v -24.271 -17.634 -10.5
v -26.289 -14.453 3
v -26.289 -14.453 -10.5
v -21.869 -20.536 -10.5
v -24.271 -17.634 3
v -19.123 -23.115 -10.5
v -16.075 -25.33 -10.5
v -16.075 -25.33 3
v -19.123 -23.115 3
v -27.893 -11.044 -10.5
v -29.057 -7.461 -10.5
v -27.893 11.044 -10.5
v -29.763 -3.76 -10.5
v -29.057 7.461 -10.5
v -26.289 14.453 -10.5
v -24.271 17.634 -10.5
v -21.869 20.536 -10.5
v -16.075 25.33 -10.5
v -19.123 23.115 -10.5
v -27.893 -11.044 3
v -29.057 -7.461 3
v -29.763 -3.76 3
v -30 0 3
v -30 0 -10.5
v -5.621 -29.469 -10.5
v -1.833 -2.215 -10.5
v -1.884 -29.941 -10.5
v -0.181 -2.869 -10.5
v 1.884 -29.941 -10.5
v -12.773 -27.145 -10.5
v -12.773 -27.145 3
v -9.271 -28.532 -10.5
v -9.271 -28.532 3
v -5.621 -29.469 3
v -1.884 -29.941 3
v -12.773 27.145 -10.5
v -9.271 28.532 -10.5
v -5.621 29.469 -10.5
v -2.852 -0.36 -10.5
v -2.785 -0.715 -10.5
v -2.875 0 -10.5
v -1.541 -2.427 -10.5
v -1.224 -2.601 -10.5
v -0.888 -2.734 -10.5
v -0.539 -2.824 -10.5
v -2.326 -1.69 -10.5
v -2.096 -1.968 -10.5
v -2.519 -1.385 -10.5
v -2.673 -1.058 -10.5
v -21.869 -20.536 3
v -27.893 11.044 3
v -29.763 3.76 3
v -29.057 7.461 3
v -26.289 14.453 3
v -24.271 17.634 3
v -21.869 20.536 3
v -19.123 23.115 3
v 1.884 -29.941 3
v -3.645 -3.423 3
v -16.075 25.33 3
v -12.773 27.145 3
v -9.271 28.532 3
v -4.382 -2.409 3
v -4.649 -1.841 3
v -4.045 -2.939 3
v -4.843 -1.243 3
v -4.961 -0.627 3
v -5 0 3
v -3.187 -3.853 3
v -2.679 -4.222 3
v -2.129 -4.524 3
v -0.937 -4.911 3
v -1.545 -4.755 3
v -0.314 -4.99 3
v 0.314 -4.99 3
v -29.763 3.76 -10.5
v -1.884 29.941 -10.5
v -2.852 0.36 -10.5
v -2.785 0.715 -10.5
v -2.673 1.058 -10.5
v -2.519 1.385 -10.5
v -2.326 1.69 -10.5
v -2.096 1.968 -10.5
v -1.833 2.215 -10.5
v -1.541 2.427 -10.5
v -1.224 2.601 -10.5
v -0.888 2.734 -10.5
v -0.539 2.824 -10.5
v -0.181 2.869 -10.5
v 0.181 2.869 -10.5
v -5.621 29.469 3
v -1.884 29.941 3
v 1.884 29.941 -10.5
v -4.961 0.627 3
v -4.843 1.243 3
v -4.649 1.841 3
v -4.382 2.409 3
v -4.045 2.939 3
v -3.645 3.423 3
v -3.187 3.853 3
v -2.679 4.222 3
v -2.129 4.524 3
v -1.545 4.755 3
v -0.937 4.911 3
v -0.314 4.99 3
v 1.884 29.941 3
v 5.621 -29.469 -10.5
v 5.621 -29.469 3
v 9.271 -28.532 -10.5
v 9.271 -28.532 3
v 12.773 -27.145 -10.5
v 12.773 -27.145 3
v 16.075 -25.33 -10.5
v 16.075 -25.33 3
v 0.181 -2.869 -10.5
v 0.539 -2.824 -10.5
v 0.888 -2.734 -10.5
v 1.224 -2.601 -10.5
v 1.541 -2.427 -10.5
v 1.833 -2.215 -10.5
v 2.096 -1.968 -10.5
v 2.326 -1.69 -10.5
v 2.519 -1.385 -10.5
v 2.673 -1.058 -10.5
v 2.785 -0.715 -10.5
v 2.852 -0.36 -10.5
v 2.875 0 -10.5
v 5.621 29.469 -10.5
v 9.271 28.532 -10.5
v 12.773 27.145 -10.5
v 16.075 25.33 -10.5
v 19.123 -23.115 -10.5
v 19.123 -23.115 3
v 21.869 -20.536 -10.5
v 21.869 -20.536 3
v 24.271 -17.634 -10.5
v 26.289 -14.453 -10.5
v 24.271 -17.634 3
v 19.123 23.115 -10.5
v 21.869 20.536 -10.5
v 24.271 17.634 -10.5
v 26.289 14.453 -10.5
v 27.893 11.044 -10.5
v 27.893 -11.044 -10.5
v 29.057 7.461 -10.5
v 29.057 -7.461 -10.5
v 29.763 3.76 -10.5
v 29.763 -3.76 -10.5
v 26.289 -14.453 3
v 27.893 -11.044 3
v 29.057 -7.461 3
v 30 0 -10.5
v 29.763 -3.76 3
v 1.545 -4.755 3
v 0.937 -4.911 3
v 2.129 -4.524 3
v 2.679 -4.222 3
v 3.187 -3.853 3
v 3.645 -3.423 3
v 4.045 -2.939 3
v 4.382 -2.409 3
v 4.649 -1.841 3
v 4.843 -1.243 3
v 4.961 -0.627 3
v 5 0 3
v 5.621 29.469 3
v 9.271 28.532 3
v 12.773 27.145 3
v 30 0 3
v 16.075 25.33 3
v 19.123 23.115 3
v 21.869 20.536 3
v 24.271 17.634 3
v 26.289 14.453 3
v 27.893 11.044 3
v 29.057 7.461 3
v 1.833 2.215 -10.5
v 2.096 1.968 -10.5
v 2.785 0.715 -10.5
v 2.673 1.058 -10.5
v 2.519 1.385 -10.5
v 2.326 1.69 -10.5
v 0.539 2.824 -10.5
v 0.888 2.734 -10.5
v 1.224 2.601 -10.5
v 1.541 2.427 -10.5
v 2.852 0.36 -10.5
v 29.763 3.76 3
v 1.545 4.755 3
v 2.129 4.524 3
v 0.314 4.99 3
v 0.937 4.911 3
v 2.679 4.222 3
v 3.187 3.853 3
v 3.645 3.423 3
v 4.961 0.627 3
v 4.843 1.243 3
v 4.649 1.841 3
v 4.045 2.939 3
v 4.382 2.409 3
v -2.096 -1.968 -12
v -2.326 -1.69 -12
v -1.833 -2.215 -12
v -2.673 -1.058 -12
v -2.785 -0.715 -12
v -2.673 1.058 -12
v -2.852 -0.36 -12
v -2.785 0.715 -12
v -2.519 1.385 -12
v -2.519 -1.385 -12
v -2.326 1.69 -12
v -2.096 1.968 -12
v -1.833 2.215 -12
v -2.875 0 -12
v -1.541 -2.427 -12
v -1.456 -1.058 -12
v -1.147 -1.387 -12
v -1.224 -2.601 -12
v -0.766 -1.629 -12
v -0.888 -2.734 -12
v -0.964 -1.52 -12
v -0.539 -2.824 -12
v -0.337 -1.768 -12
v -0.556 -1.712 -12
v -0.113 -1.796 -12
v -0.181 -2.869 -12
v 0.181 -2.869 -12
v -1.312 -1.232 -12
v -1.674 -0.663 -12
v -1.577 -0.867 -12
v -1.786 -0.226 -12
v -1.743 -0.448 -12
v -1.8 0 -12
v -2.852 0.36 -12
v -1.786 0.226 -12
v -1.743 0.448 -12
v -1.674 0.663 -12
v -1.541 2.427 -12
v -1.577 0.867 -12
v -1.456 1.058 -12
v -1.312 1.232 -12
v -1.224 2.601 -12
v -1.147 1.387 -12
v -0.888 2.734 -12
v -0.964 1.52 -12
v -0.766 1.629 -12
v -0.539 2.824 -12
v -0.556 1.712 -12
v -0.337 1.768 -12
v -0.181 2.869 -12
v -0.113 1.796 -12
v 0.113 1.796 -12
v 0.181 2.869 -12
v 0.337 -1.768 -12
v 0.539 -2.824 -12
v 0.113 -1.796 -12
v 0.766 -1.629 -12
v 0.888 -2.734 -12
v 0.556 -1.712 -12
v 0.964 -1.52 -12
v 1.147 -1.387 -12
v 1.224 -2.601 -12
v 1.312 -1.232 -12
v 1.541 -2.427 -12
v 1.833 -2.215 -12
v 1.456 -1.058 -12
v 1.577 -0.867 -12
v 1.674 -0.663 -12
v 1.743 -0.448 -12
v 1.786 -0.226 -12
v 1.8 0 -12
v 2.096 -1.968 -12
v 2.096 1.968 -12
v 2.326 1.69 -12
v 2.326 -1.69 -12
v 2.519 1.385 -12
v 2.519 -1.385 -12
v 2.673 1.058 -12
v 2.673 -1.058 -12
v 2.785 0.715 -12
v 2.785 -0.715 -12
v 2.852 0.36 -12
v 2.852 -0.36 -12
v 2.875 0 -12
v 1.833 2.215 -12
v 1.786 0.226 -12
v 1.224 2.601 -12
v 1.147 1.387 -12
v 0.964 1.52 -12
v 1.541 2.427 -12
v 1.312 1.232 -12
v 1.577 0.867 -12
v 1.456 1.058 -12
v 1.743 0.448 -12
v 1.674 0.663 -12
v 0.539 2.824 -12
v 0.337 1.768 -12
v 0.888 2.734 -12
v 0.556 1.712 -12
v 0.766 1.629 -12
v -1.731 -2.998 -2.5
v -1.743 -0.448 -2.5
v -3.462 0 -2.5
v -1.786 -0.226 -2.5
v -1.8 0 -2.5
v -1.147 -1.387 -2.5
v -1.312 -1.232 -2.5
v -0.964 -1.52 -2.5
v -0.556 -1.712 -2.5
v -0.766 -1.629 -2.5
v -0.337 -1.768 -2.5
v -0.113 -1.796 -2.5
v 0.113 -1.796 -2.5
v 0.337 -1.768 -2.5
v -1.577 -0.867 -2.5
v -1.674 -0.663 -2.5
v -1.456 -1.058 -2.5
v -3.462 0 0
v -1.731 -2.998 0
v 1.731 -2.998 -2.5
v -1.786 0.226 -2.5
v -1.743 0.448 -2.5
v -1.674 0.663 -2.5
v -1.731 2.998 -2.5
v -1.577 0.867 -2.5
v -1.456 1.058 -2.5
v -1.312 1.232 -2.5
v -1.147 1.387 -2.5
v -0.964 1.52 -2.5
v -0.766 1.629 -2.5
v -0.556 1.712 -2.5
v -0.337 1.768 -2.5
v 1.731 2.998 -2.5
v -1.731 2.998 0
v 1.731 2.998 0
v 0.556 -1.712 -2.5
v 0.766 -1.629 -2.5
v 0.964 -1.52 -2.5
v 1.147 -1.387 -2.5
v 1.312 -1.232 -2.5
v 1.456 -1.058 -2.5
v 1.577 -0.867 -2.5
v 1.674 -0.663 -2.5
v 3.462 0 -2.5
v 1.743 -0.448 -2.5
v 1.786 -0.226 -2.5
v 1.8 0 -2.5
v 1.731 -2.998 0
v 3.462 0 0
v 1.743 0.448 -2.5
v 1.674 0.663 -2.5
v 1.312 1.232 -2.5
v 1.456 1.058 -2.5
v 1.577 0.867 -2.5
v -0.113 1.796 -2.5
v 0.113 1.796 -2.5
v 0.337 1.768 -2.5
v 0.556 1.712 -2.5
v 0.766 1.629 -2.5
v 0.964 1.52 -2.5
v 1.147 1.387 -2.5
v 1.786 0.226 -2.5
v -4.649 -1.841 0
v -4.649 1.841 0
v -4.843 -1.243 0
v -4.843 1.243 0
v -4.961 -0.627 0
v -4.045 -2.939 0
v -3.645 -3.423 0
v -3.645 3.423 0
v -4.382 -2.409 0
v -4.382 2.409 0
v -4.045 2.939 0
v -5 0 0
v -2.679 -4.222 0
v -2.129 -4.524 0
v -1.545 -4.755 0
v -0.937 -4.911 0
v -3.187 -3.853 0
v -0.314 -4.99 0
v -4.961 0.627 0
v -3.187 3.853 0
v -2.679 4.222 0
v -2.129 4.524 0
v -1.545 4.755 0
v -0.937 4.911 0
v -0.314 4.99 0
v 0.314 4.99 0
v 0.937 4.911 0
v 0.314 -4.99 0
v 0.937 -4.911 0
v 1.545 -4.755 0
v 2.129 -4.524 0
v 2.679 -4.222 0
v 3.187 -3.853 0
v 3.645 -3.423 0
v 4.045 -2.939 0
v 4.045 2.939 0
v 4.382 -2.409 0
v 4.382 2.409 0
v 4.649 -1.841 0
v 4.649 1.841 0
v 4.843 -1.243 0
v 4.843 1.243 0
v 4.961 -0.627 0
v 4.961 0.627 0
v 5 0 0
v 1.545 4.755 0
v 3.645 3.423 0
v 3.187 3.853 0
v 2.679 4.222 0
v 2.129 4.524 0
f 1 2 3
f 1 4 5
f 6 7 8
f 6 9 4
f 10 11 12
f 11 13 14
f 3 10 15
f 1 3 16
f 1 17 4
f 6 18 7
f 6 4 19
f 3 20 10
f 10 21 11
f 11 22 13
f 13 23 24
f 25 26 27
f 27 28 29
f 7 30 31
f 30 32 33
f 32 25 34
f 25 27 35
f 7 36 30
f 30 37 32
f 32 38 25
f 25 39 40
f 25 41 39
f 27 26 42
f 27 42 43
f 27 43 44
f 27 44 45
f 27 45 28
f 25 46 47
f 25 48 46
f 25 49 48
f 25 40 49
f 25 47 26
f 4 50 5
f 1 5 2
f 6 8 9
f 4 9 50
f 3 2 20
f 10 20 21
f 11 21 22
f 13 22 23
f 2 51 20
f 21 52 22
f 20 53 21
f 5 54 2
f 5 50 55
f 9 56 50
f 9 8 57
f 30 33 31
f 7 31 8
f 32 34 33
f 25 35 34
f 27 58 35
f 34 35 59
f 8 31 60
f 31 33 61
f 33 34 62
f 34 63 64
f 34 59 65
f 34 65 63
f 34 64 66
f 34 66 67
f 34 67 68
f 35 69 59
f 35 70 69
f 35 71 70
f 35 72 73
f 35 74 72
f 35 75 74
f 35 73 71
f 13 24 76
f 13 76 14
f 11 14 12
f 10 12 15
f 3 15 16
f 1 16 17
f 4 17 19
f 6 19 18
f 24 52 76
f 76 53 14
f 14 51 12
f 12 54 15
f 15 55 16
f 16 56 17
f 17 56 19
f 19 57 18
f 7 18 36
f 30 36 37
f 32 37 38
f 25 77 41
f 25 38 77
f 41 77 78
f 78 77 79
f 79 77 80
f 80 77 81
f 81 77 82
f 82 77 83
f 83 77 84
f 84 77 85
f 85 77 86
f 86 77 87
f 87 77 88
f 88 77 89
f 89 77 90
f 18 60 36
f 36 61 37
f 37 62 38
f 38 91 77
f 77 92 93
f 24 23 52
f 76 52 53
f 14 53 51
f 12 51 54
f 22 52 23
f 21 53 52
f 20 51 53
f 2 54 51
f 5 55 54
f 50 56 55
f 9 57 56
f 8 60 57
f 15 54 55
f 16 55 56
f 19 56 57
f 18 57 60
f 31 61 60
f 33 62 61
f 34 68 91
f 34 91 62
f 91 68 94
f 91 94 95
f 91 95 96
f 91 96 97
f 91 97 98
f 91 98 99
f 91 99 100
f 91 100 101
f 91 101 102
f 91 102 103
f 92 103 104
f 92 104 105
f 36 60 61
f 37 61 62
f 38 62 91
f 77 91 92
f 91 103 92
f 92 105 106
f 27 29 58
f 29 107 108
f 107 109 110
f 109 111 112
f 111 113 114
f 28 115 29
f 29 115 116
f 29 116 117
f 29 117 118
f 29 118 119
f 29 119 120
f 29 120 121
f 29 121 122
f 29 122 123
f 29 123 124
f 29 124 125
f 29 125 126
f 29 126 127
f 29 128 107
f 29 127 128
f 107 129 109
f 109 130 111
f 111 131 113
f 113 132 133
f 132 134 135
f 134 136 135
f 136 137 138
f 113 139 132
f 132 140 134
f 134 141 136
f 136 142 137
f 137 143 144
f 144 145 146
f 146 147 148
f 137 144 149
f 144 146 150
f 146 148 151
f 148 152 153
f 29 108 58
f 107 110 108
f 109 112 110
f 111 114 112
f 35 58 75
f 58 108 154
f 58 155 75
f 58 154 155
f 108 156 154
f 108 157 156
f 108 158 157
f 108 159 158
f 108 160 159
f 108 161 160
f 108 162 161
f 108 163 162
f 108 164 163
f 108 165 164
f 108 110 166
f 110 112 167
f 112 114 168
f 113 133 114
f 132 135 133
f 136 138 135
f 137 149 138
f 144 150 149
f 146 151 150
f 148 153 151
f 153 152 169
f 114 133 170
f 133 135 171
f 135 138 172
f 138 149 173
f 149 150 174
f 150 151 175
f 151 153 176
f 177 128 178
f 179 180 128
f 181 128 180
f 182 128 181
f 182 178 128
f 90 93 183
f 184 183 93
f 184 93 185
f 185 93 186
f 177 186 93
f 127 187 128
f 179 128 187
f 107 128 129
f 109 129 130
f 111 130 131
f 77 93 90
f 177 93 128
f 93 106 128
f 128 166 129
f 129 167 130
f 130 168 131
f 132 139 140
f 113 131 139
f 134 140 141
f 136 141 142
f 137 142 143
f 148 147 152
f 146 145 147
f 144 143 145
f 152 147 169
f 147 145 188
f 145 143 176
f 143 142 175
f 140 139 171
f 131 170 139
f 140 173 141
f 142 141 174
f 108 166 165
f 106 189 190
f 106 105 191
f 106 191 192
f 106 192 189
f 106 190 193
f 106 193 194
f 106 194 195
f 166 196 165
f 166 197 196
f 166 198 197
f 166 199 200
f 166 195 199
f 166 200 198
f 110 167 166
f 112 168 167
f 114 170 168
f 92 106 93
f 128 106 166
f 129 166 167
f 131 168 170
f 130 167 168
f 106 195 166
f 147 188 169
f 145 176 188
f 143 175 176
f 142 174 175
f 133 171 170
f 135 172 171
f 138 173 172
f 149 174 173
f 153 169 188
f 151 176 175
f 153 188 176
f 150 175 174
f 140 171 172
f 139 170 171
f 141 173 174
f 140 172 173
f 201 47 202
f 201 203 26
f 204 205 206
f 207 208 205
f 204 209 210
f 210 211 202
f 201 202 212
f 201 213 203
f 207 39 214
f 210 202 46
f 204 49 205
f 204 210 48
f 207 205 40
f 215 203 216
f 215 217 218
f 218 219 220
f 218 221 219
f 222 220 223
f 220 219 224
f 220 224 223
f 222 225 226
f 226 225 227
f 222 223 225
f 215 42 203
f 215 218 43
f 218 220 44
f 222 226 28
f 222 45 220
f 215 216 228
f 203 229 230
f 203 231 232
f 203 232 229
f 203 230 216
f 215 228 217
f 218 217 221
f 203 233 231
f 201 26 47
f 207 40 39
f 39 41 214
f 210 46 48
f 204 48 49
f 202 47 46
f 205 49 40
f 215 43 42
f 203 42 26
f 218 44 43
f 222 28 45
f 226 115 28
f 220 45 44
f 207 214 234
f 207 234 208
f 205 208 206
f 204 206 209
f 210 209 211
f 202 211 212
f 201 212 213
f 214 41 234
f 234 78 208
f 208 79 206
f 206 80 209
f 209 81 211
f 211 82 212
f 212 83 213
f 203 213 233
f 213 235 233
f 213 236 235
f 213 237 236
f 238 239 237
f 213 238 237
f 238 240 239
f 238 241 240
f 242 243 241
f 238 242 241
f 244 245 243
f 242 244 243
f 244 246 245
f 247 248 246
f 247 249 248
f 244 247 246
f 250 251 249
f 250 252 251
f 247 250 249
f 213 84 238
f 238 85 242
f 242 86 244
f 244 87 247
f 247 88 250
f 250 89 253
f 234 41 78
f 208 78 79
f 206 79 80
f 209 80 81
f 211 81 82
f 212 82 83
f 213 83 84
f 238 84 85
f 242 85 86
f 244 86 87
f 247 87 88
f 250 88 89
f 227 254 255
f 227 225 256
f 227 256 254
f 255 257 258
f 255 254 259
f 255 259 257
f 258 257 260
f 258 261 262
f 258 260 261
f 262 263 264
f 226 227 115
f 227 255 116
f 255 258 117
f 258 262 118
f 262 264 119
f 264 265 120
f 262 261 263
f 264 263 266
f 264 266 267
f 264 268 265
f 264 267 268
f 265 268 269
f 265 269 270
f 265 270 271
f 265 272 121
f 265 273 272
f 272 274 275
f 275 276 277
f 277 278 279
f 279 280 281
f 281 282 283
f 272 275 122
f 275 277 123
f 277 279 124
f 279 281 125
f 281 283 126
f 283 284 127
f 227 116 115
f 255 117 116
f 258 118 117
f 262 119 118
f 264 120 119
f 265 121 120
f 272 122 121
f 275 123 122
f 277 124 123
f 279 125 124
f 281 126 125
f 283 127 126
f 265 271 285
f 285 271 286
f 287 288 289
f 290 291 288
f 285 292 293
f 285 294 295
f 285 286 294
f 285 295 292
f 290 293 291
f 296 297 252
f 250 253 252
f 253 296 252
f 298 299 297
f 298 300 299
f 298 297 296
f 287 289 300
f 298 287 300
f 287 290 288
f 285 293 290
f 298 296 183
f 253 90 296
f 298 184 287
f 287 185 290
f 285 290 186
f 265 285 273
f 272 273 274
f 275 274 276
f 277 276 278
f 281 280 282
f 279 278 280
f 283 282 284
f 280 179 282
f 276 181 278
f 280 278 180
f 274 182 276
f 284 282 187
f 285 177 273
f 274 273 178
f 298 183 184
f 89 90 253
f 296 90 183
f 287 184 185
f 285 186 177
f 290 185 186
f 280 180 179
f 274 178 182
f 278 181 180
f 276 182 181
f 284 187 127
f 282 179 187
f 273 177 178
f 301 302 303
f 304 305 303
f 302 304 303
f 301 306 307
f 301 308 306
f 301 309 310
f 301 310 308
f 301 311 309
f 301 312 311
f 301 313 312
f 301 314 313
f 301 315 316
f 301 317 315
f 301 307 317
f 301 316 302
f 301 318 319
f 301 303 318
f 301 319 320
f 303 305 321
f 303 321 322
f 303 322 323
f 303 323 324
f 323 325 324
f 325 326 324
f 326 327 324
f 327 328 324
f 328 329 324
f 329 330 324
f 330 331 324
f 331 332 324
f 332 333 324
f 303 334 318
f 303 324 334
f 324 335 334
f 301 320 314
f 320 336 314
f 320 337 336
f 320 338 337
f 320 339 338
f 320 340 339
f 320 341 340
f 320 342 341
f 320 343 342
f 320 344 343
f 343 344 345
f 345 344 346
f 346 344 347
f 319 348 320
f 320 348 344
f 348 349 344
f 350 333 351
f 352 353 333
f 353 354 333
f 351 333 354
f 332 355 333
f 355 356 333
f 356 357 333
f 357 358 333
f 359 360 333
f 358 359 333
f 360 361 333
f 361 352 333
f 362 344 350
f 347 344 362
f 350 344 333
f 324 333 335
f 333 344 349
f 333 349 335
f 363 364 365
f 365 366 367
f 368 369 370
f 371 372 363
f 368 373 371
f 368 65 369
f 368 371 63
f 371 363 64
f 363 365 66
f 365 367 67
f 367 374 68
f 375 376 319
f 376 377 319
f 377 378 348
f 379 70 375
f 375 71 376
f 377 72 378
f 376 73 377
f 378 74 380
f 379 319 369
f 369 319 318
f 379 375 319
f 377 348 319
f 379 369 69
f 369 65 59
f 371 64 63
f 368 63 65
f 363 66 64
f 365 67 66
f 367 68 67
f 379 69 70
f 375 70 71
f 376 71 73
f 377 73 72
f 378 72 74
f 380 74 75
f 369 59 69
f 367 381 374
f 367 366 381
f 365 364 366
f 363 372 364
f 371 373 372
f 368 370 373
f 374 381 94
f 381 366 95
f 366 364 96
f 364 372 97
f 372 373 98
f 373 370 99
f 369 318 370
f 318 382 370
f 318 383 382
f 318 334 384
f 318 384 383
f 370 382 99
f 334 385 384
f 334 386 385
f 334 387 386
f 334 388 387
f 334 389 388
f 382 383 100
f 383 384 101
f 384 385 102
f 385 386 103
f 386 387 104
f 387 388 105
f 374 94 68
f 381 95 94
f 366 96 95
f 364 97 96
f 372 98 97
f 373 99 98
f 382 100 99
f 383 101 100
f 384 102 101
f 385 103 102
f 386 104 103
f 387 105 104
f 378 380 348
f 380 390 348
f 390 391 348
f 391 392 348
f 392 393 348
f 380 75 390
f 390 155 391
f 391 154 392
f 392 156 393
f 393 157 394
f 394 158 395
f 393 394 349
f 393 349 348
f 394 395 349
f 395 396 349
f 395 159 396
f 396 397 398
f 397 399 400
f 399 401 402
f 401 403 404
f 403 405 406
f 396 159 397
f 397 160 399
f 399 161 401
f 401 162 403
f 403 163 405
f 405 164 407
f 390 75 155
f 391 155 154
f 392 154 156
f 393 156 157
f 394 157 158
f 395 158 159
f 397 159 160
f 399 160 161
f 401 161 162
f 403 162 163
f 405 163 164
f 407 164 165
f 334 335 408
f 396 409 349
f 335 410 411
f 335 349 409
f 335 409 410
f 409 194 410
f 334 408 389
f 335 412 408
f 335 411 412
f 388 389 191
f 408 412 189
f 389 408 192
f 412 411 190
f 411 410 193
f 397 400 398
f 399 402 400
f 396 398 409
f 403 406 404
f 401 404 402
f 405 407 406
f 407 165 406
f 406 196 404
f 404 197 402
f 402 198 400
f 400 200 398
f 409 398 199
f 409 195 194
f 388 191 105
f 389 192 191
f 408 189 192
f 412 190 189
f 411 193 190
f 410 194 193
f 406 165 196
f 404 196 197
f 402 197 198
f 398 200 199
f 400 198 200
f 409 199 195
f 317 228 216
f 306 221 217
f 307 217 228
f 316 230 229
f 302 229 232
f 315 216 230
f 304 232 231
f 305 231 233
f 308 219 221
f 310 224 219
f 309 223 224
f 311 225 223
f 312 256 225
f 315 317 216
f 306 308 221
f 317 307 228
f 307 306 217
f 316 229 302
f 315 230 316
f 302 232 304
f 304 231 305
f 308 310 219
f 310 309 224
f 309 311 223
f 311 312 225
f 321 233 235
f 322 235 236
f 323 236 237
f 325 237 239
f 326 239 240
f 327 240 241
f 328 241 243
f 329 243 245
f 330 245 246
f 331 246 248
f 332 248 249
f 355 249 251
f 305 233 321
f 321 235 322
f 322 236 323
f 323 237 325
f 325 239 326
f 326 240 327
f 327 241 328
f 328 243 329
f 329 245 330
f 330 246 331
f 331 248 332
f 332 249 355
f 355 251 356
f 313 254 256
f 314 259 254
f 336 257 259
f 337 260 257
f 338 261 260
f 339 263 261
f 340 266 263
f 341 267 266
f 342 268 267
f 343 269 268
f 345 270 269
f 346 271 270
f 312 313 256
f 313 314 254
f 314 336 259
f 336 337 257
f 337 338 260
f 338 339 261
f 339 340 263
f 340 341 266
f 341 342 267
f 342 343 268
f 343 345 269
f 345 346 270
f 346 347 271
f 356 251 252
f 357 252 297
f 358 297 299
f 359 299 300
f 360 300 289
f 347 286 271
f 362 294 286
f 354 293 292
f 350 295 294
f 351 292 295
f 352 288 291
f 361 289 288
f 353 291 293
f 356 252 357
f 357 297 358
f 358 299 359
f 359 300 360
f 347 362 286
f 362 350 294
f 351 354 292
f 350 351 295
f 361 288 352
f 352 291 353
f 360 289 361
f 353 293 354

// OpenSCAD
$fn = 50;

difference() {
	union() {
		translate(v = [0, 0, -10.5]) {
			cylinder(h = 13.5, r = 30.0);
		}
		#translate(v = [0, 0, -12.0]) {
			cylinder(h = 12, r = 2.875);
		}
	}
	union() {
		translate(v = [0, 0, 0]) {
			rotate(a = [0, 0, 0]) {
				difference() {
					union() {
						translate(v = [0, 0, -2.5]) {
							linear_extrude(height = 2.5) {
								polygon(points = [[3.4619999999999997, 0.0], [1.7310000000000003, 2.9981799479017264], [-1.7309999999999992, 2.9981799479017264], [-3.4619999999999997, 4.2397272186481365e-16], [-1.7310000000000014, -2.998179947901726], [1.7309999999999977, -2.9981799479017277]]);
							}
						}
					}
					union();
				}
			}
		}
		#cylinder(h = 3, r = 5.0);
		#translate(v = [0, 0, -100.0]) {
			cylinder(h = 200, r = 1.8);
		}
	}
}
